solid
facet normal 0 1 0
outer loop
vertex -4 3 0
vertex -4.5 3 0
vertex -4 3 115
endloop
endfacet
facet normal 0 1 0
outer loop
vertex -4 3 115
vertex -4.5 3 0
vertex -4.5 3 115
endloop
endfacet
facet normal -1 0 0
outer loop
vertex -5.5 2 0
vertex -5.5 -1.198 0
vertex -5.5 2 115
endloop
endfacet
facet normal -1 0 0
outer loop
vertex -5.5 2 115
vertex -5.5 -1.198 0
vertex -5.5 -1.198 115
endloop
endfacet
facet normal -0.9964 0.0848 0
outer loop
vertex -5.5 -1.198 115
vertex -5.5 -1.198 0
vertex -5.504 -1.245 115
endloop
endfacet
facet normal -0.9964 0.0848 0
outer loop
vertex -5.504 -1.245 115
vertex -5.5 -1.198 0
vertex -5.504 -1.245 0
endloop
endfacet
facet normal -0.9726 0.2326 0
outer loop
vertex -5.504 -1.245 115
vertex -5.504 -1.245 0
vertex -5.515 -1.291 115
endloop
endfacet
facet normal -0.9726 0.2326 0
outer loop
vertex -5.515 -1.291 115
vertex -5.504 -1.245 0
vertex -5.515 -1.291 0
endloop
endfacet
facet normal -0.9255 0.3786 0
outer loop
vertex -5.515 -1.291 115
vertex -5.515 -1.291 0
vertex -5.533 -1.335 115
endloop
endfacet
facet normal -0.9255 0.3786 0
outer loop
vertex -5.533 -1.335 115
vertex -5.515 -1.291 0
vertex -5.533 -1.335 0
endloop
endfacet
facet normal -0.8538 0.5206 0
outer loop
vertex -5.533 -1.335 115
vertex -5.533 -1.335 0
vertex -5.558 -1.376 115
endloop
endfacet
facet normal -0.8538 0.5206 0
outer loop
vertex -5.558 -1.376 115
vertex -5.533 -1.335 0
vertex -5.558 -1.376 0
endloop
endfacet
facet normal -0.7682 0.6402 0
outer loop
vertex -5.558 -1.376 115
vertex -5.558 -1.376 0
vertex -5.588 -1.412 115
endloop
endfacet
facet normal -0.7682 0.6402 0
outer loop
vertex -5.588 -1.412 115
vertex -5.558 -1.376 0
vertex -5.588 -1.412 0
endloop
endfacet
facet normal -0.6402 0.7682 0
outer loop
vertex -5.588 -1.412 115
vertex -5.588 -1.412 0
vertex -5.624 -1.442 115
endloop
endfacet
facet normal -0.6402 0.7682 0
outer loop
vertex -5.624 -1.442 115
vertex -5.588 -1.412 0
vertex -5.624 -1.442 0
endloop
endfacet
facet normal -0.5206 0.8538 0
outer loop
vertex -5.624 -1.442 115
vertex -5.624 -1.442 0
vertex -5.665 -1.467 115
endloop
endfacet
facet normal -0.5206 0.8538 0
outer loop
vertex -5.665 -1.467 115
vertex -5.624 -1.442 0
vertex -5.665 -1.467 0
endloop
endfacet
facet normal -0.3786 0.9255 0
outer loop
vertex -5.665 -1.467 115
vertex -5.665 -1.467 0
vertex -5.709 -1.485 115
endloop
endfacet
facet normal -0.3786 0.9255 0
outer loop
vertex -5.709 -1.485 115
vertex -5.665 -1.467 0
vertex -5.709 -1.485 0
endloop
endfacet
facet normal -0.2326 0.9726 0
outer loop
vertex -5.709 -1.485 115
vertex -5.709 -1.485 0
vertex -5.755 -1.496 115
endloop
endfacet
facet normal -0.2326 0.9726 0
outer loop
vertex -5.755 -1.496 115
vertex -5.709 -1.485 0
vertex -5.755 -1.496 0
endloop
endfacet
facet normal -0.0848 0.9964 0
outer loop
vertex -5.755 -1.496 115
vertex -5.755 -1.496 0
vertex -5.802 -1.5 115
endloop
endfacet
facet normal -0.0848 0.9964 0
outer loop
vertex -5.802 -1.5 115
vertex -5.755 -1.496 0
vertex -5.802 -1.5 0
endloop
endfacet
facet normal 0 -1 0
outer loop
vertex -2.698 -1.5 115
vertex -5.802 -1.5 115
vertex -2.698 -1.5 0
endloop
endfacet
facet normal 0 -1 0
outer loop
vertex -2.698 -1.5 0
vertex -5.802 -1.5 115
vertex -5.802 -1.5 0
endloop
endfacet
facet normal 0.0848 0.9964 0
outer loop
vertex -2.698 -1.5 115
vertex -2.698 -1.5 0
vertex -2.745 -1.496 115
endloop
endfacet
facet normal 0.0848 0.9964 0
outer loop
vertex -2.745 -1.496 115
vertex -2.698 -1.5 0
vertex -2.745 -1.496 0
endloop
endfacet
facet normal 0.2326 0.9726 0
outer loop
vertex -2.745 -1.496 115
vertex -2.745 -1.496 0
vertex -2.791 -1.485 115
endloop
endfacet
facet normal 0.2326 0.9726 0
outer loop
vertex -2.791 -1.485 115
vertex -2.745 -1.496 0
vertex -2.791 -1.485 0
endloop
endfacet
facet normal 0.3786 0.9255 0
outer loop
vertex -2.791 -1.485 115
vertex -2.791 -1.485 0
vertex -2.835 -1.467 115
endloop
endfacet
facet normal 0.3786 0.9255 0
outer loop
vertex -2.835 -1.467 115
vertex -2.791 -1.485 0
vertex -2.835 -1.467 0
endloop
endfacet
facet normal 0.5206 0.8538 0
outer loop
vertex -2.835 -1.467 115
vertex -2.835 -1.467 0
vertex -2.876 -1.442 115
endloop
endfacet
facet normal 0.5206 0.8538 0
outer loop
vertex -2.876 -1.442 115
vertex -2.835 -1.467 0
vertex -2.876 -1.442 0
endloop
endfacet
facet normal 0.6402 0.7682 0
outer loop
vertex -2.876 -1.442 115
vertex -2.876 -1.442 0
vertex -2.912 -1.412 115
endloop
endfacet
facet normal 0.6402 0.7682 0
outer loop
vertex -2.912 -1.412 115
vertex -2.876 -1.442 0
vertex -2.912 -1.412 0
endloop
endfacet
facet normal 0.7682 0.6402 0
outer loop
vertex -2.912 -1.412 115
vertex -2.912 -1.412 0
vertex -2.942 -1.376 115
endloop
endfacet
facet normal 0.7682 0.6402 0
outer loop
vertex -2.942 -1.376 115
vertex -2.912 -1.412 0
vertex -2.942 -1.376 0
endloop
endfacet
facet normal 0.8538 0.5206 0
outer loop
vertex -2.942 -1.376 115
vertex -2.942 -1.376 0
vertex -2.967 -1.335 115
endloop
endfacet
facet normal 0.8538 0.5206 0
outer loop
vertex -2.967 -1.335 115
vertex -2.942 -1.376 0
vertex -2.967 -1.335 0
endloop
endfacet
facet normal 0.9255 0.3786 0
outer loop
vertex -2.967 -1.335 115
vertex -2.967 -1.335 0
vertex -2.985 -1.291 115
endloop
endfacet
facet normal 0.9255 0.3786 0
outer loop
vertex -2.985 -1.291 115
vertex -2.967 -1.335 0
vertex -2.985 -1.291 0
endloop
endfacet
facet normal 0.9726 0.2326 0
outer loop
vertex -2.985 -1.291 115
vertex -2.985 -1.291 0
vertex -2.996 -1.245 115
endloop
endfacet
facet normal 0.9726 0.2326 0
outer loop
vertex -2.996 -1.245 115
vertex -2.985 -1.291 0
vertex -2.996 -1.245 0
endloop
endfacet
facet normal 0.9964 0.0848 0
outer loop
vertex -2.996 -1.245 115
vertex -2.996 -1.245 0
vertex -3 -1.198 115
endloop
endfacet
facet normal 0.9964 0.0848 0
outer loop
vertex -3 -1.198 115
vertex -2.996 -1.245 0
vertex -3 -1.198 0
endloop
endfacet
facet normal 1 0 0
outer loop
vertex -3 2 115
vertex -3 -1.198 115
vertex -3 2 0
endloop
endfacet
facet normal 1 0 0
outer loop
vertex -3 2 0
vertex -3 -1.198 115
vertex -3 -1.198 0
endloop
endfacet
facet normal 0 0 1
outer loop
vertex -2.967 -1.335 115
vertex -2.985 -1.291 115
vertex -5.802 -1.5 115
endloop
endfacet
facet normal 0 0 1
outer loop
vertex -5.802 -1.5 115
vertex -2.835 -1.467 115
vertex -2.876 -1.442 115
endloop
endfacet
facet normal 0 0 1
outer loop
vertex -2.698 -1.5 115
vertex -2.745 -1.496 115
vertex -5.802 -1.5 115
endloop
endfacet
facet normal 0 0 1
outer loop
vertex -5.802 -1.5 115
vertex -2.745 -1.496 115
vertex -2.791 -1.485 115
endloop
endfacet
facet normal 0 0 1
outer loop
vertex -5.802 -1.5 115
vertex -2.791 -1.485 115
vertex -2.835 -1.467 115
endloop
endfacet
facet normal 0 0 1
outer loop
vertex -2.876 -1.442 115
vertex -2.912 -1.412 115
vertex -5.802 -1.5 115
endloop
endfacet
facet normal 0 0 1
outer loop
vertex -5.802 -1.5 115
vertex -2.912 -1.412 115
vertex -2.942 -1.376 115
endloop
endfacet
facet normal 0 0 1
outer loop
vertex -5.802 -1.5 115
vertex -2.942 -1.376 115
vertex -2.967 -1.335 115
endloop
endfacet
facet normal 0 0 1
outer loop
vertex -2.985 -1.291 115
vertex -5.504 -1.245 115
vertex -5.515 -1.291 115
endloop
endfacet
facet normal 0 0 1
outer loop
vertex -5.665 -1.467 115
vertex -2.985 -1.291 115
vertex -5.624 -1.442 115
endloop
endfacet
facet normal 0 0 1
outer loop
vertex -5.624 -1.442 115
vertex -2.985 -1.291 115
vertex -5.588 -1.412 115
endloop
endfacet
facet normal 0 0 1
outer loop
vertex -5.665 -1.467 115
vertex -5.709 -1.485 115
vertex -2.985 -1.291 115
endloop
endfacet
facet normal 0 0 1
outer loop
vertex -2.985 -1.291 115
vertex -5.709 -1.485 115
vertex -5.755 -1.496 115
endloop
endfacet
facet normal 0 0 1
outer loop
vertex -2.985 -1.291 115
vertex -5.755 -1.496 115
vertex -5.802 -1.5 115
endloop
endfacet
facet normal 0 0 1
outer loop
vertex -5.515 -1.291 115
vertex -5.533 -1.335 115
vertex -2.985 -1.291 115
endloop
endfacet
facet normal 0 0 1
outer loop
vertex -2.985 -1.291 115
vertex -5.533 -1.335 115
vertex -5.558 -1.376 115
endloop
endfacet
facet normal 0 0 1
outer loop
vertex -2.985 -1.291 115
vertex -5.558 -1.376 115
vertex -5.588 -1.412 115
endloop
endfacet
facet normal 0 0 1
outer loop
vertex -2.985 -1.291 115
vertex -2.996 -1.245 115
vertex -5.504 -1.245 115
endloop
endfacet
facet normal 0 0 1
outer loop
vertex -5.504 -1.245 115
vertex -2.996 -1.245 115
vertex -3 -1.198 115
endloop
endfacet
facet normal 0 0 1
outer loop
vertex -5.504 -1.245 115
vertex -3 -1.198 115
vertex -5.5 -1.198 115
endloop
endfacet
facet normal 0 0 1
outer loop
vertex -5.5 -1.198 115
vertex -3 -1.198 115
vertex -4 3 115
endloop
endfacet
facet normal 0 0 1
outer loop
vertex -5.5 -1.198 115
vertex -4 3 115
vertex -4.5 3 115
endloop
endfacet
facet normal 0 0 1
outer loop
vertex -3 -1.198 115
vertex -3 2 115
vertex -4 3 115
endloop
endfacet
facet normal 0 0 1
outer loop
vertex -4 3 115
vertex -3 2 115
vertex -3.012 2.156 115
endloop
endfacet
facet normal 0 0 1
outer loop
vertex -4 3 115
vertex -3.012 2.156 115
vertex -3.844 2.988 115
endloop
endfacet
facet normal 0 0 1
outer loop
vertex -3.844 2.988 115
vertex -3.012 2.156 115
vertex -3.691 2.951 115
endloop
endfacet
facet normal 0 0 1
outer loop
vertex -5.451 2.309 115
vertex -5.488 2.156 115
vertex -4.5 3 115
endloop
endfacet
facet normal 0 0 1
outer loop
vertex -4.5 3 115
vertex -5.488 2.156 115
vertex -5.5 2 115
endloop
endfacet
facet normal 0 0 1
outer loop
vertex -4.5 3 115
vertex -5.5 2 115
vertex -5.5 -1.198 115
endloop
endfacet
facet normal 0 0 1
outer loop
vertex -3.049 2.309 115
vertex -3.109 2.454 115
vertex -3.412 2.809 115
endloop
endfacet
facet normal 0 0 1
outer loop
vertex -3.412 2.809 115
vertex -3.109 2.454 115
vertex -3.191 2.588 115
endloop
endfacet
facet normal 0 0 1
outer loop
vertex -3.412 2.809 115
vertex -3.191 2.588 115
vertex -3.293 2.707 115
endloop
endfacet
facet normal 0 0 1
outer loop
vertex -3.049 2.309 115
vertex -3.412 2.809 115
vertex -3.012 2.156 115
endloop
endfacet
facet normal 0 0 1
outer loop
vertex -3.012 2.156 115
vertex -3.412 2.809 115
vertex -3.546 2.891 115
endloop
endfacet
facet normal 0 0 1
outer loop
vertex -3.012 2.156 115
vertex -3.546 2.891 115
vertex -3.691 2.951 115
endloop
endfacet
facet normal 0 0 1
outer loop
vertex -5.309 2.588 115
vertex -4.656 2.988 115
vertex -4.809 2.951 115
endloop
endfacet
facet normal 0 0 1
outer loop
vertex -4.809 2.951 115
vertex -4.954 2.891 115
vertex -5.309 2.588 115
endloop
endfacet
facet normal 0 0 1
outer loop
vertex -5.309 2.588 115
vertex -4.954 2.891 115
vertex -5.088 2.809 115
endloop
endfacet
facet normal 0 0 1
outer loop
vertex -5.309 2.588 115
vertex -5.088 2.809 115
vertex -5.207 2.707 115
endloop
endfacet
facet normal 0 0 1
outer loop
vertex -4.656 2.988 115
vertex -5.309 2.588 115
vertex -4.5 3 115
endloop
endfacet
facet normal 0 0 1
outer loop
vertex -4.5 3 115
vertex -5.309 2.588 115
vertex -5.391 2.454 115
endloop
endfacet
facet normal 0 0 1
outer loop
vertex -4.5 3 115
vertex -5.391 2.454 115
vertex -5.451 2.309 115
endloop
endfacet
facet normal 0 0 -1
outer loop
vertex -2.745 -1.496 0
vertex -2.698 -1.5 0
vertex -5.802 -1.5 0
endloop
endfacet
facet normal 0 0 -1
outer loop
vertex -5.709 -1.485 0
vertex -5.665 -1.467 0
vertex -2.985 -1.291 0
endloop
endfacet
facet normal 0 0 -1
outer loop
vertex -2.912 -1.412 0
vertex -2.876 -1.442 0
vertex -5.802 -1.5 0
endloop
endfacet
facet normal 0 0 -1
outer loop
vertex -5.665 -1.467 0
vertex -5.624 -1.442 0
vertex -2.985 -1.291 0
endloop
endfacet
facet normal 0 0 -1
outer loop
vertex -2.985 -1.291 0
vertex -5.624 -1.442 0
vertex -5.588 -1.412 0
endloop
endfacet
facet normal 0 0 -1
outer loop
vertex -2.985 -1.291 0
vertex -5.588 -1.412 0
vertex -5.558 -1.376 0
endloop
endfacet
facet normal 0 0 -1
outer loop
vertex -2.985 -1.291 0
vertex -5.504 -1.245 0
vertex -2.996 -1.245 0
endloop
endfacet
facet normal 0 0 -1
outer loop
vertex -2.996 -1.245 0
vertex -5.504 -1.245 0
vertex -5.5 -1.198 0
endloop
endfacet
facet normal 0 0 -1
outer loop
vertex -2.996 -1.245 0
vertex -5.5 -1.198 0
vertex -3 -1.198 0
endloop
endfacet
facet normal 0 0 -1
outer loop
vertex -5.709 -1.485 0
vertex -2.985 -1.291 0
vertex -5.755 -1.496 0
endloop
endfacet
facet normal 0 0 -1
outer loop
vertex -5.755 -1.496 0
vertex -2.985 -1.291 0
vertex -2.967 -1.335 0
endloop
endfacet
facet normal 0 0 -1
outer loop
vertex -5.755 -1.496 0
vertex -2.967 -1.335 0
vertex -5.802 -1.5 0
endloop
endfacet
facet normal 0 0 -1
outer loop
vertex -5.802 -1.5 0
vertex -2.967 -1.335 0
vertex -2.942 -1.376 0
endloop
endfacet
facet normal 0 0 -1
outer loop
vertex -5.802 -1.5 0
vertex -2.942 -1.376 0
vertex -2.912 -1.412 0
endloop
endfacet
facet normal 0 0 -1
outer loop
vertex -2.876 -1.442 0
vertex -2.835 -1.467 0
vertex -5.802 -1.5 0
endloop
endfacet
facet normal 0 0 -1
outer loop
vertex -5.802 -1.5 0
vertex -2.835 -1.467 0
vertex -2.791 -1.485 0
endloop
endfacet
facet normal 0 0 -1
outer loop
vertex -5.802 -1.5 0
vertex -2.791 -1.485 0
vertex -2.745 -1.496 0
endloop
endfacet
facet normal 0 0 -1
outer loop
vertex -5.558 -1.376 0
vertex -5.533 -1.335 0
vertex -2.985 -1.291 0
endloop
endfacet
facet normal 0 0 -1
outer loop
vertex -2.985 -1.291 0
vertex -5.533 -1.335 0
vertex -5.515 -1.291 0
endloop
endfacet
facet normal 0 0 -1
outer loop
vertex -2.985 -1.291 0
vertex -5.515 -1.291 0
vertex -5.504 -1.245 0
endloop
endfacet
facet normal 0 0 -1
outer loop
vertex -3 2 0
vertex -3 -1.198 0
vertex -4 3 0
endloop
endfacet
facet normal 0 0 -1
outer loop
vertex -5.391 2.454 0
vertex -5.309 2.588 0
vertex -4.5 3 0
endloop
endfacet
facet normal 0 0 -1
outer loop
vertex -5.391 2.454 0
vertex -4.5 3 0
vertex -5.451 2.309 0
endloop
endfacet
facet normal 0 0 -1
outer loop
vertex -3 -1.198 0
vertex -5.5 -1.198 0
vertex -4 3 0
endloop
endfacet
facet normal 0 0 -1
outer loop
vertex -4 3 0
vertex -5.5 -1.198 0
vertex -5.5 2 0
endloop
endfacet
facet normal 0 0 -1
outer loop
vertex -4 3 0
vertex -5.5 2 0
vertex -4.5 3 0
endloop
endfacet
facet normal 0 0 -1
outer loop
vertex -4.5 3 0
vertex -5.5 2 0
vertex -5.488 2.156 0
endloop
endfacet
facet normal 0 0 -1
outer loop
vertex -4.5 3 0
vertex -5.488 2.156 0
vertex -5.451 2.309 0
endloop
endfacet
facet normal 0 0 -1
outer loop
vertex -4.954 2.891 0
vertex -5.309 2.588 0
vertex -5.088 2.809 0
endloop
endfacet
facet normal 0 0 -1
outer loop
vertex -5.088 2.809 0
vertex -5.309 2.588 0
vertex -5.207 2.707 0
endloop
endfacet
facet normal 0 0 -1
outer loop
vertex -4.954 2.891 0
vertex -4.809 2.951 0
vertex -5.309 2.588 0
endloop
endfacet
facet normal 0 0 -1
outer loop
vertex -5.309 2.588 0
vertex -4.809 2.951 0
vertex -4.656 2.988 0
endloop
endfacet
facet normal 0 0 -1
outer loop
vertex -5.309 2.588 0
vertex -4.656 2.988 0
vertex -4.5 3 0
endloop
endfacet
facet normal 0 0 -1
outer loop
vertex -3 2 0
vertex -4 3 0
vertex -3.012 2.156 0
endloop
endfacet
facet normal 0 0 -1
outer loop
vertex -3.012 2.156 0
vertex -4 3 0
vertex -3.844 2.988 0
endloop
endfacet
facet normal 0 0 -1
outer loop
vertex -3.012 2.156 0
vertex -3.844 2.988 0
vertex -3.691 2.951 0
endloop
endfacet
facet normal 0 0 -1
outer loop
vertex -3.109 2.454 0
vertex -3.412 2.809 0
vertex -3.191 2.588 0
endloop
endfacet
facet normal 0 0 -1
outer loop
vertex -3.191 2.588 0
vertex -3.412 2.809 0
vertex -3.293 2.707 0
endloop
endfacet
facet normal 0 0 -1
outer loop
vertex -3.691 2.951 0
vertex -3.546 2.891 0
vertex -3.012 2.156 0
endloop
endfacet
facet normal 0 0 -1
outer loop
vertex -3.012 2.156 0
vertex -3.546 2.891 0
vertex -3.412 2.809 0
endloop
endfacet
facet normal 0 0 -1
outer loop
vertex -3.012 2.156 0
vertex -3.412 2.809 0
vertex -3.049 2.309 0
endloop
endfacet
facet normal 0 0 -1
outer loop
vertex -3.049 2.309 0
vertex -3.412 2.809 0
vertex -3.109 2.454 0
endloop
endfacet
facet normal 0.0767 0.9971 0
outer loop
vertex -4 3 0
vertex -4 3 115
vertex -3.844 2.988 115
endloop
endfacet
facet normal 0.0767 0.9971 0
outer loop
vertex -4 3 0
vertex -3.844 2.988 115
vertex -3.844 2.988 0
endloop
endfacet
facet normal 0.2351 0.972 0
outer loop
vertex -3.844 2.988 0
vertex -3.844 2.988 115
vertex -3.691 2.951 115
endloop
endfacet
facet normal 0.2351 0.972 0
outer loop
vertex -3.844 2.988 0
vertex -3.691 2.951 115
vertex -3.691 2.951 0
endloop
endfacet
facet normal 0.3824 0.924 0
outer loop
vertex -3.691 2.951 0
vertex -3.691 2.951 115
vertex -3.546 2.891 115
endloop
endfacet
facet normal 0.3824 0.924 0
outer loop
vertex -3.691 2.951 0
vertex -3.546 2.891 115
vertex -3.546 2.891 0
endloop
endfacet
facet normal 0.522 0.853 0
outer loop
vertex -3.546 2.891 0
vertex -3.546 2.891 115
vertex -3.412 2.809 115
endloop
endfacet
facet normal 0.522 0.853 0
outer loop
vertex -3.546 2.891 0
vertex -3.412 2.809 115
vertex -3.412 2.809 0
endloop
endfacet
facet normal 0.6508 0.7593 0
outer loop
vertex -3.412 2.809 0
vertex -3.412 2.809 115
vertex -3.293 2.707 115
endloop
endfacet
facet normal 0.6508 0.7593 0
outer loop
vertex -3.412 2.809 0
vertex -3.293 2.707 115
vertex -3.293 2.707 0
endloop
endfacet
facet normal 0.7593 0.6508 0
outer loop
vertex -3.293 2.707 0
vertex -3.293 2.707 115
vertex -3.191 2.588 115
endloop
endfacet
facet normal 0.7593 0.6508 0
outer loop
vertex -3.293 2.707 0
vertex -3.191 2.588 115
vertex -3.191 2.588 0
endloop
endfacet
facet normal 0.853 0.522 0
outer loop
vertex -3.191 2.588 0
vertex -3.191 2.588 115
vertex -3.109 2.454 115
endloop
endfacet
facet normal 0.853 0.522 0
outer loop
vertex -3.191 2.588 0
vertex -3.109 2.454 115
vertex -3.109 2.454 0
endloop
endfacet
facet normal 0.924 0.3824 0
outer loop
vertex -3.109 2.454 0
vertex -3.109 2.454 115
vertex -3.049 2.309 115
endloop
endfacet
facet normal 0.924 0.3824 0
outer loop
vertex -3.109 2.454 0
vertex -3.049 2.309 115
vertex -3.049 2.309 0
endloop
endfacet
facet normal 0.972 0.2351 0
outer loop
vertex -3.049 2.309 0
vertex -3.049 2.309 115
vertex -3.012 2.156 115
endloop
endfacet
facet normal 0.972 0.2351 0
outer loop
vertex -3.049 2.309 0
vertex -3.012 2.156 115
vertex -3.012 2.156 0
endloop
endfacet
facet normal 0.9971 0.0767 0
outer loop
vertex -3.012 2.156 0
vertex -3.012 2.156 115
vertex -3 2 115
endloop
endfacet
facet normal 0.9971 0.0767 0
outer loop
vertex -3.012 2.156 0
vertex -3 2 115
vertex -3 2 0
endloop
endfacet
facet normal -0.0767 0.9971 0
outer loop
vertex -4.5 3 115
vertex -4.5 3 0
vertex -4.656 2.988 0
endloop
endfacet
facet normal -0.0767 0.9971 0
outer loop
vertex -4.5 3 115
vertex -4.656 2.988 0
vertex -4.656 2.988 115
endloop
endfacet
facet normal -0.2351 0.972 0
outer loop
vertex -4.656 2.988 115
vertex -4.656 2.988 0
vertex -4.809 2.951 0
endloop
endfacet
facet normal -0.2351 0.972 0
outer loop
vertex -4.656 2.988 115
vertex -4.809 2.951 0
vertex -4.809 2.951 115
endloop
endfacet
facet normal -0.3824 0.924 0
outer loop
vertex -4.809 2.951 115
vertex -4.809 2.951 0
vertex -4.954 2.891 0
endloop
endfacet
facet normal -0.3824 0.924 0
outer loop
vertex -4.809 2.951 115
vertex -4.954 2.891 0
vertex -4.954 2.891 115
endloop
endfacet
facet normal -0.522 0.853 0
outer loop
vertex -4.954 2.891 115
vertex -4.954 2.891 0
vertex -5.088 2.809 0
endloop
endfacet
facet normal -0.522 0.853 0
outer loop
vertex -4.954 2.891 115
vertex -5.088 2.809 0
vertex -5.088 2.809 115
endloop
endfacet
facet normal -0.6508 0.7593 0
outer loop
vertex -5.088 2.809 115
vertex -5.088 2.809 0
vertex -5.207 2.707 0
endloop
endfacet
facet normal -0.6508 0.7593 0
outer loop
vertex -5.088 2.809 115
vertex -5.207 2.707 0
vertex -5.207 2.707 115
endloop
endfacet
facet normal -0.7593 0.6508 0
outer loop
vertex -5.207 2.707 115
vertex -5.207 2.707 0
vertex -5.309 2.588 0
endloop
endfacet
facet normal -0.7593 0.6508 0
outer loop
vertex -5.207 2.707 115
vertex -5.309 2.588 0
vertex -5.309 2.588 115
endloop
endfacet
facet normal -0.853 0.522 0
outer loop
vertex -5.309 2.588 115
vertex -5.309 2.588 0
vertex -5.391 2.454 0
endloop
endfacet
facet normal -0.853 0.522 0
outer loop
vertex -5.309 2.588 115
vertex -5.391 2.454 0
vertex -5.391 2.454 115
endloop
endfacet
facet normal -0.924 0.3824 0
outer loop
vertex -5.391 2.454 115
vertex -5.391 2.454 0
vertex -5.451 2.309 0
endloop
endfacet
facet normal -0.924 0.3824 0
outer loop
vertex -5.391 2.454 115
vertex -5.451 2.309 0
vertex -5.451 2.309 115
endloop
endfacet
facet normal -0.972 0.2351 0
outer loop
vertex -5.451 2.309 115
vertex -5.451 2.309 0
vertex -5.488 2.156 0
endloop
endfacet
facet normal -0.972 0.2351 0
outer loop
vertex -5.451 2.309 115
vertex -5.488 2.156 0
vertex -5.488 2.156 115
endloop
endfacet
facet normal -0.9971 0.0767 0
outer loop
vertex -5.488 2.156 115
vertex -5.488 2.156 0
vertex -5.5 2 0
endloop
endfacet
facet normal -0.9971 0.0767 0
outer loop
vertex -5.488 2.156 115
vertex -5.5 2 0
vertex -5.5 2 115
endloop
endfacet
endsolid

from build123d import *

# Parameters (mm, degrees)
RESSALTO_EXTRUS_O1_DEPTH = 115
FILETE1_R                = 1


with BuildPart() as part:
    # Esboço1 → Ressalto-extrusão1 (new body)
    with BuildSketch(Plane.XY):
        Polygon((-5.5, -1.198132677), (-5.5, -1.5), (-4.25, -1.5), (-4.25, 3), (-5.5, 3), align=None)
        with BuildLine():
            Line((-5.801867323, -1.5), (-5.5, -1.5))
            Line((-5.5, -1.5), (-5.5, -1.198132677))
            ThreePointArc((-5.5, -1.198132677), (-5.588414892, -1.411585108), (-5.801867323, -1.5))
        make_face()
        Polygon((-4.25, 3), (-4.25, -1.5), (-3, -1.5), (-3, -1.198132677), (-3, 3), align=None)
        with BuildLine():
            Line((-3, -1.198132677), (-3, -1.5))
            Line((-3, -1.5), (-2.698132677, -1.5))
            ThreePointArc((-2.698132677, -1.5), (-2.911585108, -1.411585108), (-3, -1.198132677))
        make_face()
    extrude(amount=RESSALTO_EXTRUS_O1_DEPTH)

    # Filete1
    filete1_edges = [part.edges().sort_by_distance(p)[0] for p in [
        (-3, 3, 57.5),
        (-5.5, 3, 57.5),
    ]]
    fillet(filete1_edges, radius=FILETE1_R)


solid = part.part
